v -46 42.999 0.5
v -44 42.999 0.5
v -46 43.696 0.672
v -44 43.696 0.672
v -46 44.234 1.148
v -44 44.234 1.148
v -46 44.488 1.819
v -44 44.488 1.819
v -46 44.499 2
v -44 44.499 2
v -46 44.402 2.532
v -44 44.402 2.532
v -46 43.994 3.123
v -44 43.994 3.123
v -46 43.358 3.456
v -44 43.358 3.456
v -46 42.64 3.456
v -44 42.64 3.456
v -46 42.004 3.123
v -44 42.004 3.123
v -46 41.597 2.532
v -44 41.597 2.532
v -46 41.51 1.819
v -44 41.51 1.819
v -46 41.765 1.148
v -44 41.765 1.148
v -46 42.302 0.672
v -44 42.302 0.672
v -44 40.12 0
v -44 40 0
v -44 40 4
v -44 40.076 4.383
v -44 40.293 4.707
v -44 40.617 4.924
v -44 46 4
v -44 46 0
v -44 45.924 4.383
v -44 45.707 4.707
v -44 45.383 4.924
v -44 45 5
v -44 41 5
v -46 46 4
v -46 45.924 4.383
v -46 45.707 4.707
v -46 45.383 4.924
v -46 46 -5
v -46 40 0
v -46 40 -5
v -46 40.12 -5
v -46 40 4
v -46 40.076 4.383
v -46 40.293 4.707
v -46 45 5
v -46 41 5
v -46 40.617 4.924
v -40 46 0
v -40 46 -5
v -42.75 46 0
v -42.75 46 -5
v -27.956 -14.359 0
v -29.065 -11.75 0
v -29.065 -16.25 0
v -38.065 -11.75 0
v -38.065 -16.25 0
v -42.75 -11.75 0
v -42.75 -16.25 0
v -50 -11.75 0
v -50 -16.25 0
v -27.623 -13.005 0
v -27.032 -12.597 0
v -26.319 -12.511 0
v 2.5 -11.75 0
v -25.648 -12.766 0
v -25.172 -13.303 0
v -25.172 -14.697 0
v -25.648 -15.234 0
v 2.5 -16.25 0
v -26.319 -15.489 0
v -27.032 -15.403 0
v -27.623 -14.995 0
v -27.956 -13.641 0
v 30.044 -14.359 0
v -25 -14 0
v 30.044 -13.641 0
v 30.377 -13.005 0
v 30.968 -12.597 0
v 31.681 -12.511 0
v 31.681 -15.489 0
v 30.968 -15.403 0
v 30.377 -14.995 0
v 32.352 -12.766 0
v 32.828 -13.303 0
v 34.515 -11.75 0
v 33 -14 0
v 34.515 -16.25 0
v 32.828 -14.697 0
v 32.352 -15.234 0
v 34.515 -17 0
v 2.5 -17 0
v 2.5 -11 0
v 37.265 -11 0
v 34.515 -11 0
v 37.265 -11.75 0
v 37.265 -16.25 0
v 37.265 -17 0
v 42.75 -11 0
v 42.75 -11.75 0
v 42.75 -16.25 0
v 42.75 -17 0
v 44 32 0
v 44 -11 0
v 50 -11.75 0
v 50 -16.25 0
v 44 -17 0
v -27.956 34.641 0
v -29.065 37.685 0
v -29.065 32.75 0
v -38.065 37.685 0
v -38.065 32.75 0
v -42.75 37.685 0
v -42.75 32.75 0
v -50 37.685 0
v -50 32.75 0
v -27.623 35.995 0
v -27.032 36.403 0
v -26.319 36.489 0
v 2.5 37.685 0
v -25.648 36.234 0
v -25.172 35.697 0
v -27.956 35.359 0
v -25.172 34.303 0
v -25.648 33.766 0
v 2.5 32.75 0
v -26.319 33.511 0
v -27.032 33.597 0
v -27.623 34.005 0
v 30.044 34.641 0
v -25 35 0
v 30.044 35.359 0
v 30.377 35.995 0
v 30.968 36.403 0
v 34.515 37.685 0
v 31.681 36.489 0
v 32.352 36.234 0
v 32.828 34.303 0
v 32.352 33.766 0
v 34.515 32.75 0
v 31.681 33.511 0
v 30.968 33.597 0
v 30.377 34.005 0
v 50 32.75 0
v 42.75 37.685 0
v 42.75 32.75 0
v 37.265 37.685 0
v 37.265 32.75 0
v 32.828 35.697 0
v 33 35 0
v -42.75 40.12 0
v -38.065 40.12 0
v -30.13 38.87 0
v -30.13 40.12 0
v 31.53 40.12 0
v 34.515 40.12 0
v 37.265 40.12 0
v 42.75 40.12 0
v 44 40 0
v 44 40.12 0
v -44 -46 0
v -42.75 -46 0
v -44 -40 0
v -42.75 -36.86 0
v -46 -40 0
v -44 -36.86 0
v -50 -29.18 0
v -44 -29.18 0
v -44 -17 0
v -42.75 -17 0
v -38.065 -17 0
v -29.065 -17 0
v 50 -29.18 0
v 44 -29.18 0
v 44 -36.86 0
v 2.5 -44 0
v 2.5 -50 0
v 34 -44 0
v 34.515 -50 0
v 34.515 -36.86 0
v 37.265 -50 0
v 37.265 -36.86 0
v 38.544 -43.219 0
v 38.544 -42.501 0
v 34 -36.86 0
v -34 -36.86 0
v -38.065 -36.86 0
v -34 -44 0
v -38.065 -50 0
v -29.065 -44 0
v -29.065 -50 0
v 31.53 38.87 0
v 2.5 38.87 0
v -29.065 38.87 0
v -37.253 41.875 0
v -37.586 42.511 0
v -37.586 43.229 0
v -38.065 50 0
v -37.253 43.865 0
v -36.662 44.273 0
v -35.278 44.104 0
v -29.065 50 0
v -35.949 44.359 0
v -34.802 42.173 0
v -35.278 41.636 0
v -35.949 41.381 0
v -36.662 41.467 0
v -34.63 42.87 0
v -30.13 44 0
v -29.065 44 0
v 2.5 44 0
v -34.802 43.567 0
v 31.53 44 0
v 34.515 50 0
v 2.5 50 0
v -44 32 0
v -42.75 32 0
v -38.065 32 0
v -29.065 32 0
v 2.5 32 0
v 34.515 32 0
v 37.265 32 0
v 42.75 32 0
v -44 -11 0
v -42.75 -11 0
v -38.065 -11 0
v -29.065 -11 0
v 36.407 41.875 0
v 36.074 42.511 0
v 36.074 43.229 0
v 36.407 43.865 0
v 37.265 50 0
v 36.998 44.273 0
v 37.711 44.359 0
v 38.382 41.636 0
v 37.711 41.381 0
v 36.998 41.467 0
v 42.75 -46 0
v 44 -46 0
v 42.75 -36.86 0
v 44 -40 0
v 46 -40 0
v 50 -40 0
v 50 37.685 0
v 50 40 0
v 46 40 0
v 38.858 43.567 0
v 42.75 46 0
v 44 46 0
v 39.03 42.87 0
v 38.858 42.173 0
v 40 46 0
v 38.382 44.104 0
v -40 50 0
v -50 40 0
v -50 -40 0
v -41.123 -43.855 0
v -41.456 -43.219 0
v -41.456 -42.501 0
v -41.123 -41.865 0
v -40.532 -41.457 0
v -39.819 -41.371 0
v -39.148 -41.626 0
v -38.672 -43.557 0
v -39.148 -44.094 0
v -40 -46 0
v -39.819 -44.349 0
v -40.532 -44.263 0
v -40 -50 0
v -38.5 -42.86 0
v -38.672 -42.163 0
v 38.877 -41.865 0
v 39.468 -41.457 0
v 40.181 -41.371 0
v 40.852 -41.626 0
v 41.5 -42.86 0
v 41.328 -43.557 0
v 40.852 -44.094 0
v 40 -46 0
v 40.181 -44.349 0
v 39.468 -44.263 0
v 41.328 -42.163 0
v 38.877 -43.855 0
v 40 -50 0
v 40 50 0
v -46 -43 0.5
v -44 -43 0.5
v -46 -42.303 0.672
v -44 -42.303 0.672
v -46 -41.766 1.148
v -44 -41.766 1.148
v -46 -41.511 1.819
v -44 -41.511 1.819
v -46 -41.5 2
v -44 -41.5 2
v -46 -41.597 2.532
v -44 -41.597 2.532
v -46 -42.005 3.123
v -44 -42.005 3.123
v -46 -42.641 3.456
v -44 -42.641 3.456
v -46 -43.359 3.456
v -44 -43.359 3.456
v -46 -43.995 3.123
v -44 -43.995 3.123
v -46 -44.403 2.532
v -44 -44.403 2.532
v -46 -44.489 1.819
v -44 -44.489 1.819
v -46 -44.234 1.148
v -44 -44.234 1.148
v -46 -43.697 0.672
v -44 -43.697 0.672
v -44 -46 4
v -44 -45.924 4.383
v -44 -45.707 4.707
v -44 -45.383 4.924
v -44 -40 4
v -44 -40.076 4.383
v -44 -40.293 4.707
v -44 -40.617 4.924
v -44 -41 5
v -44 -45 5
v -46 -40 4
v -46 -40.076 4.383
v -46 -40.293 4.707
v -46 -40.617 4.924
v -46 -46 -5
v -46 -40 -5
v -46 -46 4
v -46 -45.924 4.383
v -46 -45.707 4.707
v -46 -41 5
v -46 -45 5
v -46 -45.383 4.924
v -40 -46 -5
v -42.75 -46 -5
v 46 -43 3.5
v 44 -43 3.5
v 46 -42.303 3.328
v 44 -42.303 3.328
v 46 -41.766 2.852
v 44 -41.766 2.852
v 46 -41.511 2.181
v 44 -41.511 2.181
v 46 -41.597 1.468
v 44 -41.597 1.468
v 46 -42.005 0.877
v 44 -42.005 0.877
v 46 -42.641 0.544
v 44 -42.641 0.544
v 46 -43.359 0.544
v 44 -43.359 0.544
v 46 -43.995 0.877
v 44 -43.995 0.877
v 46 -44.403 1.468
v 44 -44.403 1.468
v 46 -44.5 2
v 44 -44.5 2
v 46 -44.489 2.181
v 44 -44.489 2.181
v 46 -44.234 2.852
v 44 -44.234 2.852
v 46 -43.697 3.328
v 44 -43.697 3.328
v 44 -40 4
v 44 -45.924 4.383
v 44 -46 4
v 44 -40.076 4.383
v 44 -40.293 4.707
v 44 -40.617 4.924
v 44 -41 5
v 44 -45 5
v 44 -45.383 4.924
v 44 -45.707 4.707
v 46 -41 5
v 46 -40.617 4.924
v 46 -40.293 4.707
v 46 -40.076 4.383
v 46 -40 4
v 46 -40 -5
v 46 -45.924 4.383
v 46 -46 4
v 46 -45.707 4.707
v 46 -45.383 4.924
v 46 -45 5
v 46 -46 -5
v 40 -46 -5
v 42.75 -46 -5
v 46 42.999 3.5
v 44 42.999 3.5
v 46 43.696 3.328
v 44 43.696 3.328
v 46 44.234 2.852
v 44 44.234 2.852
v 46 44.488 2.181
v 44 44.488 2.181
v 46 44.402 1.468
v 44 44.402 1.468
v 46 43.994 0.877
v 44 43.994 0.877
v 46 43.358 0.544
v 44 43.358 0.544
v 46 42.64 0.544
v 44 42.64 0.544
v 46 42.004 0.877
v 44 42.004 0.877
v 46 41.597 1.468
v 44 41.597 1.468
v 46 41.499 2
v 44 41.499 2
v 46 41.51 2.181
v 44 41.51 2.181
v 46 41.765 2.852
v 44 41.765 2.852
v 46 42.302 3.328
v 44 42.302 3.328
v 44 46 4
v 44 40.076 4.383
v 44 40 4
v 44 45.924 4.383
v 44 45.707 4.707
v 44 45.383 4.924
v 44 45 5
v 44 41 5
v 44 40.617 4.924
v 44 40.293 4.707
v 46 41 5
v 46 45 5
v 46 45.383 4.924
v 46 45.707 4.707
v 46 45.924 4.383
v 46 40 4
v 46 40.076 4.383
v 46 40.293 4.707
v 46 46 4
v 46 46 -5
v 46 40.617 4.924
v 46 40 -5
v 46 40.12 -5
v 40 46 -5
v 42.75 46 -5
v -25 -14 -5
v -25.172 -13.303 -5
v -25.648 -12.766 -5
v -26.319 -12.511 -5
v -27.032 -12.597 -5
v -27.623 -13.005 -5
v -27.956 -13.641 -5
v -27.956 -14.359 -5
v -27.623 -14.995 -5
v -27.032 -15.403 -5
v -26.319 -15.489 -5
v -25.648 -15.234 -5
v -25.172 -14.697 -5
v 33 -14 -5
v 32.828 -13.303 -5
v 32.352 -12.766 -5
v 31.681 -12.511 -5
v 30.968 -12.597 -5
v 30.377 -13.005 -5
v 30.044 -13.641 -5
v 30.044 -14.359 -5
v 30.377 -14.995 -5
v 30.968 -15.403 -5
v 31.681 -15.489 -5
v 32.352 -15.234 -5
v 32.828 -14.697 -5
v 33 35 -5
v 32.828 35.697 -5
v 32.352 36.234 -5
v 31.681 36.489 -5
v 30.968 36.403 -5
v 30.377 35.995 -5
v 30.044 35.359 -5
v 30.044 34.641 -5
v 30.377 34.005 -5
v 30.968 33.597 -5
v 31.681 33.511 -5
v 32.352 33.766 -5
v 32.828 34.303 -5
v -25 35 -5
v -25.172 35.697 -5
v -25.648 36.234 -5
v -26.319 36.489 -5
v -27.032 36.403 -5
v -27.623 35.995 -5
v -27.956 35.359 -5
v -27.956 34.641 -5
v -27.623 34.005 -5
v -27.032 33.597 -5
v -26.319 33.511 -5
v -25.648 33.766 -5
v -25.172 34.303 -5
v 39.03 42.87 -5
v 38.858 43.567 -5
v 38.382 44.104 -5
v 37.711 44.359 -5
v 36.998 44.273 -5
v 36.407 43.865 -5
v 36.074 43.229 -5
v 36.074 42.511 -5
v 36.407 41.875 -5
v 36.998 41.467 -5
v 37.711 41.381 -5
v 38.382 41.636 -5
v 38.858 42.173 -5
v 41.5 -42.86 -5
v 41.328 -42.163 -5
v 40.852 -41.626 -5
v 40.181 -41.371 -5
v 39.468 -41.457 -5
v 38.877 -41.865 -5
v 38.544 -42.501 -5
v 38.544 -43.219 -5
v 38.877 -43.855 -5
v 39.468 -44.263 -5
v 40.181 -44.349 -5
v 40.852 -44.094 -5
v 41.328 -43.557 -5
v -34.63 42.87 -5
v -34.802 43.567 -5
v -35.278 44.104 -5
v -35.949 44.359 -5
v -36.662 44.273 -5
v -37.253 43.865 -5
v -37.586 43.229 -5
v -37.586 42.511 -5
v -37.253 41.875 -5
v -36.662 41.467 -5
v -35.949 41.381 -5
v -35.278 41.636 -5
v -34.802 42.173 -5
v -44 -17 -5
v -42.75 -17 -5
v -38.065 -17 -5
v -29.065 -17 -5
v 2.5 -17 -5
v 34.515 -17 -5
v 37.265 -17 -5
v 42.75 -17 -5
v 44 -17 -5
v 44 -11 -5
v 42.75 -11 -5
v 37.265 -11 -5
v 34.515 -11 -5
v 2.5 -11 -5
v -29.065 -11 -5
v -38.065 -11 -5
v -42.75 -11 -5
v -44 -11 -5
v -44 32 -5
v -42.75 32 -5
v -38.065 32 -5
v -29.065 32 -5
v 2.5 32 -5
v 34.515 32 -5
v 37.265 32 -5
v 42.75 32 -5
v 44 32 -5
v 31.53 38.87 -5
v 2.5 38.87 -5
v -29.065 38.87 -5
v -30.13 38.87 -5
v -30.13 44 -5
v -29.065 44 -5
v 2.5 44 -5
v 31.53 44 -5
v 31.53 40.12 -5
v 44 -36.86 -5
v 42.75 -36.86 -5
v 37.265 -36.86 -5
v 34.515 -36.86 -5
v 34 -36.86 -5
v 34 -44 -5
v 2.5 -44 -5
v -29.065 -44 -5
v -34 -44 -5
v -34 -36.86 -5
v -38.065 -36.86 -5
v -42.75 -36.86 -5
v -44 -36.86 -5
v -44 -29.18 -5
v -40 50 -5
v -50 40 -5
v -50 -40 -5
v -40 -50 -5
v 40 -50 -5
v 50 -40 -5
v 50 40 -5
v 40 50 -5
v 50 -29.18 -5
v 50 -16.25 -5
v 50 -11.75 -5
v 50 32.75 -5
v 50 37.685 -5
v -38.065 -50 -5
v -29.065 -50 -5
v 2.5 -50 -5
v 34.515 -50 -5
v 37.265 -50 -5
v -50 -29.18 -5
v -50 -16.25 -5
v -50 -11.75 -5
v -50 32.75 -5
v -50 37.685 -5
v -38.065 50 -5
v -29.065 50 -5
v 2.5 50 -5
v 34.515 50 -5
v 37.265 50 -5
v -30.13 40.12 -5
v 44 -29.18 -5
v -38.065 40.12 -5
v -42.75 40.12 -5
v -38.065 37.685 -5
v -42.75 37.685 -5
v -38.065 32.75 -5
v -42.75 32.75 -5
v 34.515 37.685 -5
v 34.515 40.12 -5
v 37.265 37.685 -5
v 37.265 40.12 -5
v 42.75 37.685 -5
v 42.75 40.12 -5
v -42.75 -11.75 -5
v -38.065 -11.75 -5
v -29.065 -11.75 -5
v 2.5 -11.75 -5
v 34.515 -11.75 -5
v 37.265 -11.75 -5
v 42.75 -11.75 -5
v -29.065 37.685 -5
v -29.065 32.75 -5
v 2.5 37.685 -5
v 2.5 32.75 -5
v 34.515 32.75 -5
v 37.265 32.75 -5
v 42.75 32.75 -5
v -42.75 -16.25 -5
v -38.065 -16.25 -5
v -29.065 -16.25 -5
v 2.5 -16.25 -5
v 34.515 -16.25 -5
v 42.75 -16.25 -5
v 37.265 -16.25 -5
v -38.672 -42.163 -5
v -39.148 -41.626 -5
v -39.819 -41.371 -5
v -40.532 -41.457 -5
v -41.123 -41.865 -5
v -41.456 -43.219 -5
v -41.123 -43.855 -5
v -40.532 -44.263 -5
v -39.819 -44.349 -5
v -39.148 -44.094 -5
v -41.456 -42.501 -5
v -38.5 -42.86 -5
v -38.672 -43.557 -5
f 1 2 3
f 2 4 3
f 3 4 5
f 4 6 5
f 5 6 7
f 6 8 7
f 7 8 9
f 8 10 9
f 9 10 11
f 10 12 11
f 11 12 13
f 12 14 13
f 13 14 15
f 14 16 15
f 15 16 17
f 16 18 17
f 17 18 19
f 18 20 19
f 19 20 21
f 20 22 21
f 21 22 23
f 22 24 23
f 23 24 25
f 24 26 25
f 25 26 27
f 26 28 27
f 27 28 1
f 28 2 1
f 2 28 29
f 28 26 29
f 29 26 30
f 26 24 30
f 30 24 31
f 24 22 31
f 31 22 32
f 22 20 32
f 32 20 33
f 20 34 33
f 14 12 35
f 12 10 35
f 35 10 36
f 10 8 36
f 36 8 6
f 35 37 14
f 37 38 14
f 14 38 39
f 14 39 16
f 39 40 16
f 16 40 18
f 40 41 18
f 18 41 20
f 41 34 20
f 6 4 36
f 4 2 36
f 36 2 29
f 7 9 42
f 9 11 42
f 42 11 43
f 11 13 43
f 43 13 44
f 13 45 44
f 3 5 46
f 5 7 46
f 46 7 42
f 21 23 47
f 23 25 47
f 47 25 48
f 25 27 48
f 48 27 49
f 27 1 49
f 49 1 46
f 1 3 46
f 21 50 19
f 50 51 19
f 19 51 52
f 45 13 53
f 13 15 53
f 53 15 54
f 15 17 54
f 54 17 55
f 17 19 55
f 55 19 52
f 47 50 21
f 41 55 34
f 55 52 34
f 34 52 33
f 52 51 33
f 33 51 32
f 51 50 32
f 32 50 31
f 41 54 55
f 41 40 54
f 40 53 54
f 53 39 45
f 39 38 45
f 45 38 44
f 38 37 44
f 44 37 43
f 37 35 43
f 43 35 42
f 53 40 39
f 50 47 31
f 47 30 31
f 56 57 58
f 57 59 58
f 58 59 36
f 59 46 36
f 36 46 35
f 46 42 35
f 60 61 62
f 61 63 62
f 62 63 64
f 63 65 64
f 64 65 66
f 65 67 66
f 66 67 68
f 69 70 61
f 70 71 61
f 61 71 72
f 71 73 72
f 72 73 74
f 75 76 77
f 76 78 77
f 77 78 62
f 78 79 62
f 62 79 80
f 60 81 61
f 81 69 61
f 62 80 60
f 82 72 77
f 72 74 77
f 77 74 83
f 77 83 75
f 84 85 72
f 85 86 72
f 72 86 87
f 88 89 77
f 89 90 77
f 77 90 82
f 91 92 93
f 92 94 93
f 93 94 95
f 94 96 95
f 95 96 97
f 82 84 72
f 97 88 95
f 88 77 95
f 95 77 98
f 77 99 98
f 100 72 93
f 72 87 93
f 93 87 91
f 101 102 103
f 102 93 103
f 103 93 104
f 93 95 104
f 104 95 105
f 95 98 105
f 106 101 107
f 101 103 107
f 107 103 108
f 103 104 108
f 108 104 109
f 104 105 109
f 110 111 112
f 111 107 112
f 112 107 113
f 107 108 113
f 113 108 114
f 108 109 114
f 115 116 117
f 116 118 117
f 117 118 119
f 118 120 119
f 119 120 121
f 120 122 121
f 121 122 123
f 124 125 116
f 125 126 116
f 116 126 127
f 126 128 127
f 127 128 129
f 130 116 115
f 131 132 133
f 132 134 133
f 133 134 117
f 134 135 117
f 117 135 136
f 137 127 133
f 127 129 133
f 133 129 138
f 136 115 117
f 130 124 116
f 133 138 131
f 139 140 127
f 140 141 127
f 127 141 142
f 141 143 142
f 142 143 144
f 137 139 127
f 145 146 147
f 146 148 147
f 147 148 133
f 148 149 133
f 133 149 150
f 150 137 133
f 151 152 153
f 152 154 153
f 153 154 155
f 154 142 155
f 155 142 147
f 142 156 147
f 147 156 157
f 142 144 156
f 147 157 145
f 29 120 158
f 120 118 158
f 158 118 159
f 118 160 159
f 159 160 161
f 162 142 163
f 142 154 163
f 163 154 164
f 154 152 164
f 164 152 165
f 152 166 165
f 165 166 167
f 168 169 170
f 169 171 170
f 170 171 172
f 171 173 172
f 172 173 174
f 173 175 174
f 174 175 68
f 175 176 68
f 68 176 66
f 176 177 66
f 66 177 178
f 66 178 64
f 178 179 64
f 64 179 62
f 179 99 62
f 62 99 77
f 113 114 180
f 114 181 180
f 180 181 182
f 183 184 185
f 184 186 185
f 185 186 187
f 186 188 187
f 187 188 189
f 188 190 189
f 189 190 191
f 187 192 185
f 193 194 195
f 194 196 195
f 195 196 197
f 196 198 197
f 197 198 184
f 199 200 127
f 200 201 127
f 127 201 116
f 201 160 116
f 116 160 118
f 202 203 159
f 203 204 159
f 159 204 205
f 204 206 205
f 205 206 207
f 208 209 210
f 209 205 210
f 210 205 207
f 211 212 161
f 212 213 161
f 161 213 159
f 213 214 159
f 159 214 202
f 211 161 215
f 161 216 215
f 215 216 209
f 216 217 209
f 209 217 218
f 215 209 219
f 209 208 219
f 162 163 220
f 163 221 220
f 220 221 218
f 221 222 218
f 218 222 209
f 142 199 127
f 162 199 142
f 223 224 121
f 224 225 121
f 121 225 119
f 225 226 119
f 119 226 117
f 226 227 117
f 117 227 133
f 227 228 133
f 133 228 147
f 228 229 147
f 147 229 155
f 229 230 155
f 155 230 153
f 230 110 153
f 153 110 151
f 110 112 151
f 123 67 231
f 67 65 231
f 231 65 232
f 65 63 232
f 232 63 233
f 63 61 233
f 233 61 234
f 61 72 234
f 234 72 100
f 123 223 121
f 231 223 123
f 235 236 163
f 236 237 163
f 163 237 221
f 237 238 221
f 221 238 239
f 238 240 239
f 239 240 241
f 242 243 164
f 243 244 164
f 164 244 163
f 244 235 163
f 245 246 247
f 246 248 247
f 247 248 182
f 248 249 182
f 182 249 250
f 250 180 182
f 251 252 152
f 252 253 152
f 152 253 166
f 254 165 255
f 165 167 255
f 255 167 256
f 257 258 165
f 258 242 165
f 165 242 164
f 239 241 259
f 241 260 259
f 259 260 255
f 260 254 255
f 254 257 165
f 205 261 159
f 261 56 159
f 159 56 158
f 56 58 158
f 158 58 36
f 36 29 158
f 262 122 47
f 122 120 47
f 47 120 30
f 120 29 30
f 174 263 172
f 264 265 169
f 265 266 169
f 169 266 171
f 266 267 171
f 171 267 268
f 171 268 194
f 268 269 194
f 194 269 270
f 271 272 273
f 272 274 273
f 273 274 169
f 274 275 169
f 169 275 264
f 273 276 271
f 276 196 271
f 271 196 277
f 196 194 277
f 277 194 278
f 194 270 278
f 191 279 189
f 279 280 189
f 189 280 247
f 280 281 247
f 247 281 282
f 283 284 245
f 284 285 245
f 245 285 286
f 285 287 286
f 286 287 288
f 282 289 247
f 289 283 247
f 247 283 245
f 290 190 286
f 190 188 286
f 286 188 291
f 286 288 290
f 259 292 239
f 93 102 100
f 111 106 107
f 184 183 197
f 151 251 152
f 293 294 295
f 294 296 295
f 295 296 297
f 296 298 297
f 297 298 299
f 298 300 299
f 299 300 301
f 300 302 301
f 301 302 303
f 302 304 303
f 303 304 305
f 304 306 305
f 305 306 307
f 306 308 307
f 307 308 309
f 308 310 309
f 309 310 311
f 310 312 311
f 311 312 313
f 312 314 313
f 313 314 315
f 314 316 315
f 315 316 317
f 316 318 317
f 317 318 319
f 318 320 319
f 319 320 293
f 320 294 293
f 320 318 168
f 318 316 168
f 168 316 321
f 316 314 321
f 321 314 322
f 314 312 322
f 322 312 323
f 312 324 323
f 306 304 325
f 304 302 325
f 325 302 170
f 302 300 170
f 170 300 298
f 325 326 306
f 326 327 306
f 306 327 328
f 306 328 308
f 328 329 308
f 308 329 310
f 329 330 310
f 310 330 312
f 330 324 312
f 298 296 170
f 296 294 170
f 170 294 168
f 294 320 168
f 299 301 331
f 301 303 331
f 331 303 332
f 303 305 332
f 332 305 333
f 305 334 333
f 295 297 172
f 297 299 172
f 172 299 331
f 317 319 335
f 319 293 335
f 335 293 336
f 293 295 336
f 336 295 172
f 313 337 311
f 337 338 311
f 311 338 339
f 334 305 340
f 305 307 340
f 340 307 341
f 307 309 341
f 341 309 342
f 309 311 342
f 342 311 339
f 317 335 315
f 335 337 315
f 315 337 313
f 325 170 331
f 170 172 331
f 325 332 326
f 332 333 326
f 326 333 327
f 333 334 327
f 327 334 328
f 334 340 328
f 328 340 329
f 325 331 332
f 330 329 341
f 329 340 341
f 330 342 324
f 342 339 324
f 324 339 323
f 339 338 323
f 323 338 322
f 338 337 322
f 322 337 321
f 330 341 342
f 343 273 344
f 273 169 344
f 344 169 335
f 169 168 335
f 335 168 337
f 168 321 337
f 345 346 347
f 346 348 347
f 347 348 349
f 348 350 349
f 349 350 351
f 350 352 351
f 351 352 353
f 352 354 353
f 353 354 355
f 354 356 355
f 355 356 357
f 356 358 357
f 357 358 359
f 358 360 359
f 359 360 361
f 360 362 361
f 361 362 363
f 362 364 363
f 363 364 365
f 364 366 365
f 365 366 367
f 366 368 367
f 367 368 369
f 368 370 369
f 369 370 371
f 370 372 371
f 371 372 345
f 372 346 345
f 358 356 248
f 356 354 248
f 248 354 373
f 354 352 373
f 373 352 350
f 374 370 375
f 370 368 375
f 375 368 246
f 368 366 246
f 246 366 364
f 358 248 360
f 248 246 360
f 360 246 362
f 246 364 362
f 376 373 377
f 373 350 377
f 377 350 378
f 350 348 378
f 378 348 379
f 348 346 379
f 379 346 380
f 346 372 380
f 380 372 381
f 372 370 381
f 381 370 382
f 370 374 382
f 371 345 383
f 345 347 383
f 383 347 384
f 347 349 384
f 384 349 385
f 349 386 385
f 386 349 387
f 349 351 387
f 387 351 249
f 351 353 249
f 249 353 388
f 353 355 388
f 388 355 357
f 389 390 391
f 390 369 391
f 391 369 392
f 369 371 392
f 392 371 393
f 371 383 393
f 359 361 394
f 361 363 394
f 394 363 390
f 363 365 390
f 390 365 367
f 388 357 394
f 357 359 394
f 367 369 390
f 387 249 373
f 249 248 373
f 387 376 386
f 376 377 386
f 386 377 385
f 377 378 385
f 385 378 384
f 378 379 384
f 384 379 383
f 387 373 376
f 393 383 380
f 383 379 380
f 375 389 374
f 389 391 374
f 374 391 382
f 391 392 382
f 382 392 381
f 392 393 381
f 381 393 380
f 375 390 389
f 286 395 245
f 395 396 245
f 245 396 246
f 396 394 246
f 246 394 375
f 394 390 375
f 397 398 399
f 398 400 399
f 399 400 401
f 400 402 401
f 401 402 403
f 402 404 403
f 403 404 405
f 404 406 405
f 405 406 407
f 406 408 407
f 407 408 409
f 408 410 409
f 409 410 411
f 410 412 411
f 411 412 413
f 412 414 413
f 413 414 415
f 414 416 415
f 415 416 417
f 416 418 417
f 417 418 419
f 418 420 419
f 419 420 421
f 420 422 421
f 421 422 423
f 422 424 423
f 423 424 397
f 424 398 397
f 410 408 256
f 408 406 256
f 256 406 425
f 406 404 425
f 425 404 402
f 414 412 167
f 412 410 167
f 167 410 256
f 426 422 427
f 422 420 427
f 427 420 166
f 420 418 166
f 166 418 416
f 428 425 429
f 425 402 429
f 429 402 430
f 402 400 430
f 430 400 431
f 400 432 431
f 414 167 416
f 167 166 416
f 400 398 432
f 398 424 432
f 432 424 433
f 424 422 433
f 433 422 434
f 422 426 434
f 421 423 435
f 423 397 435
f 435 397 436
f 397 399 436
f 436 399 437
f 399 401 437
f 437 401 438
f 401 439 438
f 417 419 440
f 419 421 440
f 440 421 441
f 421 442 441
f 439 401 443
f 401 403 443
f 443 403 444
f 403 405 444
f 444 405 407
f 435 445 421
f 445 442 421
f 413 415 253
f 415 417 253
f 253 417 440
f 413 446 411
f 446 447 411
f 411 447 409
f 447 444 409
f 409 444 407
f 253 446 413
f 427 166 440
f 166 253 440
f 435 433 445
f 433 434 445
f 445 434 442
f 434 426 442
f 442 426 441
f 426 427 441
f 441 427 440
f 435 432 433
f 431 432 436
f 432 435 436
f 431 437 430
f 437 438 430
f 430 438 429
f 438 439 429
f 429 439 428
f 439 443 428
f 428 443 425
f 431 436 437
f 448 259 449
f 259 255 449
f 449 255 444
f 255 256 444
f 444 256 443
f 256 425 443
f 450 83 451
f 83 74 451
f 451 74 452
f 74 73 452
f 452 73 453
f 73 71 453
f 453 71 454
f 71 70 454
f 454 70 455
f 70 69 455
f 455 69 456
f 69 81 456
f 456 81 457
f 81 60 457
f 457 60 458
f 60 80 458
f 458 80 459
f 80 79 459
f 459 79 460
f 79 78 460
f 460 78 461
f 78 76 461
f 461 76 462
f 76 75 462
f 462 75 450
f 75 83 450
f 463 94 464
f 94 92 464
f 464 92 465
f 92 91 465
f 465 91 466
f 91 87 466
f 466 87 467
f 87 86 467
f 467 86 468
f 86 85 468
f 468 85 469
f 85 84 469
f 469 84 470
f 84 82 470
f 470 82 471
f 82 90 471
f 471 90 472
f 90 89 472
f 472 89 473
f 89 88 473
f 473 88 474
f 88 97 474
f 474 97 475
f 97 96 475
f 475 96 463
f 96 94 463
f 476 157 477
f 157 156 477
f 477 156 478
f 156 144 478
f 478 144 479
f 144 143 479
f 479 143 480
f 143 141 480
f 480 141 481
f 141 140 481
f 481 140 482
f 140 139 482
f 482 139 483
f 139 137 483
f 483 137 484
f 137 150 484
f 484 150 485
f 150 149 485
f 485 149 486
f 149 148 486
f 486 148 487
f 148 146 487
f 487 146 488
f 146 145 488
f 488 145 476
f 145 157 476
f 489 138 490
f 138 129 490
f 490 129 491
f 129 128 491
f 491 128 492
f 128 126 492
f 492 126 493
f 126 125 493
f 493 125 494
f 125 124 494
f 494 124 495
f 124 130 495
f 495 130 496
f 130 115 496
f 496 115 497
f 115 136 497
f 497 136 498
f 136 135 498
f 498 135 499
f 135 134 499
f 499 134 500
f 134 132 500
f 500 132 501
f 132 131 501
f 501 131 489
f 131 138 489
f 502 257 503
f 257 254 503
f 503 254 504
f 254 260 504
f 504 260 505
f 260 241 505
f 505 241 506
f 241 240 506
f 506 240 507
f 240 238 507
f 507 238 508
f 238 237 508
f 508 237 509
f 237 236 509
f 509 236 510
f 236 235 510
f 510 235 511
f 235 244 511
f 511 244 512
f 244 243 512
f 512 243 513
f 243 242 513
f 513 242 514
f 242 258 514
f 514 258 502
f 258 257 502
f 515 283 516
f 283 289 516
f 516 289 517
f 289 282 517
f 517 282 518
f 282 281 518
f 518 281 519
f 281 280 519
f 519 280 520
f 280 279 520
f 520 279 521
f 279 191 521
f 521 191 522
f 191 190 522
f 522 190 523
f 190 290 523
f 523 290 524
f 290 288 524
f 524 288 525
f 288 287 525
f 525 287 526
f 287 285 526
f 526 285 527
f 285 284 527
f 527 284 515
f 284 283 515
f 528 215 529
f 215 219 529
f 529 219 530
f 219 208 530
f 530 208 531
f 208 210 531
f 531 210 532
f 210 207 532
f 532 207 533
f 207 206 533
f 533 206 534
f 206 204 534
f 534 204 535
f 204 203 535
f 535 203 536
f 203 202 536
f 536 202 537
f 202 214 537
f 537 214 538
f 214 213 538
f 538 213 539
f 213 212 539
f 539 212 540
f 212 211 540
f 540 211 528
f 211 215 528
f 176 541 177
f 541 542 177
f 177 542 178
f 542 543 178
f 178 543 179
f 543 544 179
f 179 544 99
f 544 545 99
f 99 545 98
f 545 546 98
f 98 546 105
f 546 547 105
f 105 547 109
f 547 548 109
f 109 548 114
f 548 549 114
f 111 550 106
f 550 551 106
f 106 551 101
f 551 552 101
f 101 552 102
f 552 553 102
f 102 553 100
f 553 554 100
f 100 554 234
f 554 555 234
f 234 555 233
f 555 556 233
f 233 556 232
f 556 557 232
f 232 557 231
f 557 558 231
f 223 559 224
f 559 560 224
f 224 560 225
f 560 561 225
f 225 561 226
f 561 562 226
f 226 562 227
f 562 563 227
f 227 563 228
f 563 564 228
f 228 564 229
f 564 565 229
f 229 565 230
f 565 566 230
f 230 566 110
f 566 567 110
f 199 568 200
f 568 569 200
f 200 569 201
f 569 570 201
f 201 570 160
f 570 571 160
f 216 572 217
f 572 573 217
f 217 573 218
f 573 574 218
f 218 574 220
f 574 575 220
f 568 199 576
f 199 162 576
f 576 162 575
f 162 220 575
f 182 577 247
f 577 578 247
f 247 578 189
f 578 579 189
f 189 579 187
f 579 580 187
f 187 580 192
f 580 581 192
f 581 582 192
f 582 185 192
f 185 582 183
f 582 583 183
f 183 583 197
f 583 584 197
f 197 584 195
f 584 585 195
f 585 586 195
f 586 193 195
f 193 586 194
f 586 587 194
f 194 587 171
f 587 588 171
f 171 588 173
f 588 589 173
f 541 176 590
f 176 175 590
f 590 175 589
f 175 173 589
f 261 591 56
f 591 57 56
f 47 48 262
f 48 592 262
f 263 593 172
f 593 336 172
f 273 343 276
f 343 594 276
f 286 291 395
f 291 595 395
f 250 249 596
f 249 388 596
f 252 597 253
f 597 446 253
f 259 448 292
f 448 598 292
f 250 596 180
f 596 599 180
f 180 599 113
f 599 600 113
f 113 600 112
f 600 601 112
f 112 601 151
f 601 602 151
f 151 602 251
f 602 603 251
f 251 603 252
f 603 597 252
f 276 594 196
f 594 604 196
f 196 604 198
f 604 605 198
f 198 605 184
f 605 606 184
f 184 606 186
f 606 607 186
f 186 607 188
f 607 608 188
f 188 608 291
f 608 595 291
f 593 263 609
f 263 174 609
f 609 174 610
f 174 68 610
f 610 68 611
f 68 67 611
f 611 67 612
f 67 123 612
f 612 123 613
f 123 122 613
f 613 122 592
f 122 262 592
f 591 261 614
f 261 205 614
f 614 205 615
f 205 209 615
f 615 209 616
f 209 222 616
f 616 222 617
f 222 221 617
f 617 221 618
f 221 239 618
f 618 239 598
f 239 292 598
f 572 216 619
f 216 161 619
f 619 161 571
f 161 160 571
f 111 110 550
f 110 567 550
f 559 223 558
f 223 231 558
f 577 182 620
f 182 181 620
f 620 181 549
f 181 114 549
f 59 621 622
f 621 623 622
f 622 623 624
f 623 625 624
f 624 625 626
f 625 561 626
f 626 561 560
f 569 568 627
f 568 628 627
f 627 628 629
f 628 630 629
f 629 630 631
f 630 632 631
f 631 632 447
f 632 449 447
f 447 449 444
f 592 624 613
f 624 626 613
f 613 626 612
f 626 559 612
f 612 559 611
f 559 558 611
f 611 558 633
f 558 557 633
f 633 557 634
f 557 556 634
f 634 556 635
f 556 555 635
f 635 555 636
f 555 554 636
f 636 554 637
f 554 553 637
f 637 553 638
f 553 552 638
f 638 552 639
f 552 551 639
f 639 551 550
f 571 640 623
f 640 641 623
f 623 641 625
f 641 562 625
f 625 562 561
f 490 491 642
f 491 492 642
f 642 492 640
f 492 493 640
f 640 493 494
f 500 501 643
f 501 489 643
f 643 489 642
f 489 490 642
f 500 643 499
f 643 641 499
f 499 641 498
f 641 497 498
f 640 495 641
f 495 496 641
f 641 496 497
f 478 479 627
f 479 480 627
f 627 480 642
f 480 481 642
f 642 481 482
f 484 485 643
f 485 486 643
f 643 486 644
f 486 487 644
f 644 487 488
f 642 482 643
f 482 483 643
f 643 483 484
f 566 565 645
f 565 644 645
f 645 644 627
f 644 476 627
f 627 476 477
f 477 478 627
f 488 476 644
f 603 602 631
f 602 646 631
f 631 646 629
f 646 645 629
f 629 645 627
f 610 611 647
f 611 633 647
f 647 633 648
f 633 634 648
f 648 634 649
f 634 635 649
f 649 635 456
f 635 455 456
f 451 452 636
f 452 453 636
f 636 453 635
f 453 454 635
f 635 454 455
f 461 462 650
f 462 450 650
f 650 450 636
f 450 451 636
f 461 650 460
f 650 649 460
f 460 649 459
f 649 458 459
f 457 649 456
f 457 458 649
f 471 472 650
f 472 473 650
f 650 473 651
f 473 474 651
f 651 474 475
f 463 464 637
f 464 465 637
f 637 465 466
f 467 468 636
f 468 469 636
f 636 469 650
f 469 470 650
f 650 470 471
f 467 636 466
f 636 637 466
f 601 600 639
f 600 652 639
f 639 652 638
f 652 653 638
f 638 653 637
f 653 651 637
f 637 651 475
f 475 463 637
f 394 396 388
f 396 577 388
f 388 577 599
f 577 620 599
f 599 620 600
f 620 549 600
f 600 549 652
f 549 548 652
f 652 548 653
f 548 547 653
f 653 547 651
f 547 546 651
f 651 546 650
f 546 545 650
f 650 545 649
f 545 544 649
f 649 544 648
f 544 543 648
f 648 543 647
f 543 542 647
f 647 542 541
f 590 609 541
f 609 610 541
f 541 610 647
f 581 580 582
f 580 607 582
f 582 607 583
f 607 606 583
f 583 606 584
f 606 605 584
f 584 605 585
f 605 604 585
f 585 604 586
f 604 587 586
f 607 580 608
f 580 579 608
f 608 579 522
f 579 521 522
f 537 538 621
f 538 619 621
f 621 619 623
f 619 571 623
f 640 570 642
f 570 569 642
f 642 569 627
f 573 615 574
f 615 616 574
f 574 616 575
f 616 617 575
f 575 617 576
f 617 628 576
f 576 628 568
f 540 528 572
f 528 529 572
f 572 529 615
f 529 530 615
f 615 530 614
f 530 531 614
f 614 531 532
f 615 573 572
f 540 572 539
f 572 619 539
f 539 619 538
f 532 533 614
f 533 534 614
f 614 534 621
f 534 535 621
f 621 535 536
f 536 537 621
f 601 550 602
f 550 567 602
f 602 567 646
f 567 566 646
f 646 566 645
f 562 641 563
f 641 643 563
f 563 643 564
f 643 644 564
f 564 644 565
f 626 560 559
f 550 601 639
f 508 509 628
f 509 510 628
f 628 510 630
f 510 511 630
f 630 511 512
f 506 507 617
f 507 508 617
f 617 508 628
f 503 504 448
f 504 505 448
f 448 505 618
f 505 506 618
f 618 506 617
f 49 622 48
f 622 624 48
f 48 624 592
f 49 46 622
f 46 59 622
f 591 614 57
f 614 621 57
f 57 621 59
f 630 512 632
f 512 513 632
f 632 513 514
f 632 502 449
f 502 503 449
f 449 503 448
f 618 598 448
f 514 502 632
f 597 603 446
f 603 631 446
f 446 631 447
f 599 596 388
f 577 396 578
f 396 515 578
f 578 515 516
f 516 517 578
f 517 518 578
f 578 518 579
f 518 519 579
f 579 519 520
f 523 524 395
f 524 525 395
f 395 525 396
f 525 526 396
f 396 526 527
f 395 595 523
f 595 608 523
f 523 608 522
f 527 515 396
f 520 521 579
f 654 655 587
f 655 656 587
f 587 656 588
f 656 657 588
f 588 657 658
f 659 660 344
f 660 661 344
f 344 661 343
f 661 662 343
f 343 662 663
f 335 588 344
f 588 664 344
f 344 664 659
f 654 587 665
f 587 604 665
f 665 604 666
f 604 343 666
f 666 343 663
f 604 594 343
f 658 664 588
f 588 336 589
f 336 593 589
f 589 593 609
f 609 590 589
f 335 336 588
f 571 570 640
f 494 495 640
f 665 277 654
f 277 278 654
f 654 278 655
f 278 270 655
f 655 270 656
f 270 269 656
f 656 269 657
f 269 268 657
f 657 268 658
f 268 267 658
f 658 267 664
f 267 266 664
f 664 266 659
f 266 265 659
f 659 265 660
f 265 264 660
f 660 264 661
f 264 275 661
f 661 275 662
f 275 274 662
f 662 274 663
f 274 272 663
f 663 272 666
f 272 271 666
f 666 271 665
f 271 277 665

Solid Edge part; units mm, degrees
sketch "Sketch1" plane through (0, 0, 0) normal (0, 0, 1) x (1, 0, 0)
  line L0 (-40, -50) -> (40, -50)
  line L1 (40, -50) -> (50, -50)
  line L2 (50, -50) -> (50, -40)
  line L3 (50, -40) -> (50, 40)
  line L4 (50, 50) -> (50, 40)
  line L5 (40, 50) -> (50, 50)
  line L6 (40, 50) -> (-40, 50)
  line L7 (-50, 50) -> (-40, 50)
  line L8 (-50, 40) -> (-50, 50)
  line L9 (-50, 40) -> (-50, -40)
  line L10 (-50, -40) -> (-50, -50)
  line L11 (-50, -50) -> (-40, -50)
extrude "Protrusion1" add sketch "Sketch1" against normal blind 5
sketch "Sketch2" plane through (0, 0, 0) normal (0, 0, 1) x (1, 0, 0)
  line L0 (50, 50) -> (40, 50)
  line L1 (40, 46) -> (40, 50)
  line L2 (40, 46) -> (46, 46)
  line L3 (46, 46) -> (46, 40)
  line L4 (46, 40) -> (50, 40)
  line L5 (50, 40) -> (50, 50)
  line L6 (50, -40) -> (50, -50)
  line L7 (50, -50) -> (40, -50)
  line L8 (40, -46) -> (40, -50)
  line L9 (46, -46) -> (40, -46)
  line L10 (46, -40) -> (46, -46)
  line L11 (46, -40) -> (50, -40)
  line L12 (-50, -50) -> (-40, -50)
  line L13 (-40, -46) -> (-40, -50)
  line L14 (-46, -46) -> (-40, -46)
  line L15 (-46, -40) -> (-46, -46)
  line L16 (-50, -40) -> (-46, -40)
  line L17 (-50, -40) -> (-50, -50)
  line L18 (-46, 40) -> (-46, 46)
  line L19 (-46, 46) -> (-40, 46)
  line L20 (-40, 46) -> (-40, 50)
  line L21 (-40, 50) -> (-50, 50)
  line L22 (-50, 50) -> (-50, 40)
  line L23 (-50, 40) -> (-46, 40)
  dimension "D1" = 10
  dimension "D2" = 4
  dimension "D3" = 10
  dimension "D4" = 4
  dimension "D5" = 10
  dimension "D6" = 10
  dimension "D7" = 4
  dimension "D8" = 4
  dimension "D9" = 4
  dimension "D10" = 10
  dimension "D11" = 10
  dimension "D12" = 4
  dimension "D13" = 10
  dimension "D14" = 10
  dimension "D15" = 4
  dimension "D16" = 4
extrude "ExtrudedCutout_1" cut sketch "Sketch2" against normal blind 11.3526
sketch "Sketch3" plane through (0, 0, 0) normal (0, 0, 1) x (1, 0, 0)
  circle A0 centre (-40, -42.86) radius 1.5
  circle A1 centre (-36.13, 42.87) radius 1.5
  circle A2 centre (40, -42.86) radius 1.5
  circle A3 centre (37.53, 42.87) radius 1.5
  dimension "D1" = 10
  dimension "D2" = 7.14
  dimension "D3" = 3
  dimension "D4" = 3
  dimension "D5" = 92.87
  dimension "D6" = 13.87
  dimension "D7" = 3
  dimension "D8" = 90
  dimension "D9" = 3
  dimension "D10" = 87.53
  dimension "D11" = 92.87
extrude "Cutout1" cut sketch "Sketch3" against normal blind 5
sketch "Sketch4" plane through (0, 0, 0) normal (0, 0, 1) x (0, 1, 0)
  line L0 (36.87, 44) -> (-36.86, 44)
  line L1 (-36.86, 44) -> (-36.86, 34)
  line L2 (-36.86, 34) -> (-44, 34)
  line L3 (-44, 34) -> (-44, -34)
  line L4 (-44, -34) -> (-36.86, -34)
  line L5 (-36.86, -34) -> (-36.86, -44)
  line L6 (-36.86, -44) -> (36.87, -44)
  line L7 (36.87, -44) -> (36.87, -31.53)
  line L8 (36.87, -31.53) -> (44, -31.53)
  line L9 (44, -31.53) -> (44, 30.13)
  line L10 (44, 30.13) -> (36.87, 30.13)
  line L11 (36.87, 30.13) -> (36.87, 44)
  dimension "D1" = 6
  dimension "D2" = 6
  dimension "D3" = 6
  dimension "D4" = 6
  dimension "D5" = 6
  dimension "D6" = 6
  dimension "D7" = 6
  dimension "D8" = 6
  dimension "D9" = 6
  dimension "D10" = 6
  dimension "D11" = 6
  dimension "D12" = 6
extrude "Cutout2" cut sketch "Sketch4" against normal blind 5
sketch "Sketch5" plane through (0, 0, 0) normal (0, 0, 1) x (1, 0, 0)
  circle A0 centre (-26.5, 35) radius 1.5
  circle A1 centre (31.5, 35) radius 1.5
  circle A2 centre (31.5, -14) radius 1.5
  circle A3 centre (-26.5, -14) radius 1.5
  line L0 (-44, 36.87) -> (-30.13, 36.87)
  line L1 (-30.13, 38.87) -> (-30.13, 36.87)
  line L2 (31.53, 38.87) -> (-30.13, 38.87)
  line L3 (31.53, 38.87) -> (31.53, 36.87)
  line L4 (31.53, 36.87) -> (44, 36.87)
  line L5 (44, 36.87) -> (44, 32)
  line L6 (-44, 32) -> (44, 32)
  line L7 (-44, 35) -> (-44, 32)
  line L8 (-44, 35) -> (-44, 36.87)
  line L9 (-44, -14) -> (-44, -11)
  line L10 (-44, -11) -> (44, -11)
  line L11 (44, -11) -> (44, -17)
  line L12 (44, -17) -> (-44, -17)
  line L13 (-44, -17) -> (-44, -14)
  dimension "D1" = 15
  dimension "D2" = 49
  dimension "D3" = 23.5
  dimension "D4" = 58
extrude "ExtrudedProtrusion_2" add sketch "Sketch5" against normal blind 5
sketch "Sketch6" plane through (0, 0, 0) normal (0, 0, 1) x (1, 0, 0)
  line L0 (-46, 40) -> (-44, 40)
  line L1 (-44, 40) -> (-44, 46)
  line L2 (-44, 46) -> (-46, 46)
  line L3 (-46, 40) -> (-46, 46)
  line L4 (46, 46) -> (44, 46)
  line L5 (44, 46) -> (44, 40)
  line L6 (44, 40) -> (46, 40)
  line L7 (46, 40) -> (46, 46)
  line L8 (-46, -40) -> (-44, -40)
  line L9 (-44, -40) -> (-44, -46)
  line L10 (-44, -46) -> (-46, -46)
  line L11 (-46, -46) -> (-46, -40)
  line L12 (46, -46) -> (44, -46)
  line L13 (44, -46) -> (44, -40)
  line L14 (44, -40) -> (46, -40)
  line L15 (46, -40) -> (46, -46)
extrude "ExtrudedProtrusion_3" add sketch "Sketch6" along normal blind 5
sketch "Sketch7" plane through (-44, -43, 3) normal (1, 0, 0) x (0, 1, 0)
  circle A0 centre (0, -1) radius 1.5
  circle A1 centre (85.9991, -1) radius 1.5
  dimension "D1" = 3
  dimension "D2" = 3
  dimension "D3" = 3
  dimension "D4" = 3
  dimension "D5" = 2.9991
  dimension "D6" = 3
extrude "ExtrudedCutout_14" cut sketch "Sketch7" against normal blind 2
sketch "Sketch8" plane through (44, 43, 2.5) normal (-1, 0, 0) x (0, -1, 0)
  circle A0 centre (0.0009, -0.5) radius 1.5
  circle A1 centre (86, -0.5) radius 1.5
extrude "ExtrudedCutout_15" cut sketch "Sketch8" against normal blind 2
fillet "Round_2" radius 1 8 edges at (45, 40, 5) (45, 46, 5) (-45, 40, 5) (-45, 46, 5) (-45, -46, 5) (-45, -40, 5) (45, -46, 5) (45, -40, 5)
